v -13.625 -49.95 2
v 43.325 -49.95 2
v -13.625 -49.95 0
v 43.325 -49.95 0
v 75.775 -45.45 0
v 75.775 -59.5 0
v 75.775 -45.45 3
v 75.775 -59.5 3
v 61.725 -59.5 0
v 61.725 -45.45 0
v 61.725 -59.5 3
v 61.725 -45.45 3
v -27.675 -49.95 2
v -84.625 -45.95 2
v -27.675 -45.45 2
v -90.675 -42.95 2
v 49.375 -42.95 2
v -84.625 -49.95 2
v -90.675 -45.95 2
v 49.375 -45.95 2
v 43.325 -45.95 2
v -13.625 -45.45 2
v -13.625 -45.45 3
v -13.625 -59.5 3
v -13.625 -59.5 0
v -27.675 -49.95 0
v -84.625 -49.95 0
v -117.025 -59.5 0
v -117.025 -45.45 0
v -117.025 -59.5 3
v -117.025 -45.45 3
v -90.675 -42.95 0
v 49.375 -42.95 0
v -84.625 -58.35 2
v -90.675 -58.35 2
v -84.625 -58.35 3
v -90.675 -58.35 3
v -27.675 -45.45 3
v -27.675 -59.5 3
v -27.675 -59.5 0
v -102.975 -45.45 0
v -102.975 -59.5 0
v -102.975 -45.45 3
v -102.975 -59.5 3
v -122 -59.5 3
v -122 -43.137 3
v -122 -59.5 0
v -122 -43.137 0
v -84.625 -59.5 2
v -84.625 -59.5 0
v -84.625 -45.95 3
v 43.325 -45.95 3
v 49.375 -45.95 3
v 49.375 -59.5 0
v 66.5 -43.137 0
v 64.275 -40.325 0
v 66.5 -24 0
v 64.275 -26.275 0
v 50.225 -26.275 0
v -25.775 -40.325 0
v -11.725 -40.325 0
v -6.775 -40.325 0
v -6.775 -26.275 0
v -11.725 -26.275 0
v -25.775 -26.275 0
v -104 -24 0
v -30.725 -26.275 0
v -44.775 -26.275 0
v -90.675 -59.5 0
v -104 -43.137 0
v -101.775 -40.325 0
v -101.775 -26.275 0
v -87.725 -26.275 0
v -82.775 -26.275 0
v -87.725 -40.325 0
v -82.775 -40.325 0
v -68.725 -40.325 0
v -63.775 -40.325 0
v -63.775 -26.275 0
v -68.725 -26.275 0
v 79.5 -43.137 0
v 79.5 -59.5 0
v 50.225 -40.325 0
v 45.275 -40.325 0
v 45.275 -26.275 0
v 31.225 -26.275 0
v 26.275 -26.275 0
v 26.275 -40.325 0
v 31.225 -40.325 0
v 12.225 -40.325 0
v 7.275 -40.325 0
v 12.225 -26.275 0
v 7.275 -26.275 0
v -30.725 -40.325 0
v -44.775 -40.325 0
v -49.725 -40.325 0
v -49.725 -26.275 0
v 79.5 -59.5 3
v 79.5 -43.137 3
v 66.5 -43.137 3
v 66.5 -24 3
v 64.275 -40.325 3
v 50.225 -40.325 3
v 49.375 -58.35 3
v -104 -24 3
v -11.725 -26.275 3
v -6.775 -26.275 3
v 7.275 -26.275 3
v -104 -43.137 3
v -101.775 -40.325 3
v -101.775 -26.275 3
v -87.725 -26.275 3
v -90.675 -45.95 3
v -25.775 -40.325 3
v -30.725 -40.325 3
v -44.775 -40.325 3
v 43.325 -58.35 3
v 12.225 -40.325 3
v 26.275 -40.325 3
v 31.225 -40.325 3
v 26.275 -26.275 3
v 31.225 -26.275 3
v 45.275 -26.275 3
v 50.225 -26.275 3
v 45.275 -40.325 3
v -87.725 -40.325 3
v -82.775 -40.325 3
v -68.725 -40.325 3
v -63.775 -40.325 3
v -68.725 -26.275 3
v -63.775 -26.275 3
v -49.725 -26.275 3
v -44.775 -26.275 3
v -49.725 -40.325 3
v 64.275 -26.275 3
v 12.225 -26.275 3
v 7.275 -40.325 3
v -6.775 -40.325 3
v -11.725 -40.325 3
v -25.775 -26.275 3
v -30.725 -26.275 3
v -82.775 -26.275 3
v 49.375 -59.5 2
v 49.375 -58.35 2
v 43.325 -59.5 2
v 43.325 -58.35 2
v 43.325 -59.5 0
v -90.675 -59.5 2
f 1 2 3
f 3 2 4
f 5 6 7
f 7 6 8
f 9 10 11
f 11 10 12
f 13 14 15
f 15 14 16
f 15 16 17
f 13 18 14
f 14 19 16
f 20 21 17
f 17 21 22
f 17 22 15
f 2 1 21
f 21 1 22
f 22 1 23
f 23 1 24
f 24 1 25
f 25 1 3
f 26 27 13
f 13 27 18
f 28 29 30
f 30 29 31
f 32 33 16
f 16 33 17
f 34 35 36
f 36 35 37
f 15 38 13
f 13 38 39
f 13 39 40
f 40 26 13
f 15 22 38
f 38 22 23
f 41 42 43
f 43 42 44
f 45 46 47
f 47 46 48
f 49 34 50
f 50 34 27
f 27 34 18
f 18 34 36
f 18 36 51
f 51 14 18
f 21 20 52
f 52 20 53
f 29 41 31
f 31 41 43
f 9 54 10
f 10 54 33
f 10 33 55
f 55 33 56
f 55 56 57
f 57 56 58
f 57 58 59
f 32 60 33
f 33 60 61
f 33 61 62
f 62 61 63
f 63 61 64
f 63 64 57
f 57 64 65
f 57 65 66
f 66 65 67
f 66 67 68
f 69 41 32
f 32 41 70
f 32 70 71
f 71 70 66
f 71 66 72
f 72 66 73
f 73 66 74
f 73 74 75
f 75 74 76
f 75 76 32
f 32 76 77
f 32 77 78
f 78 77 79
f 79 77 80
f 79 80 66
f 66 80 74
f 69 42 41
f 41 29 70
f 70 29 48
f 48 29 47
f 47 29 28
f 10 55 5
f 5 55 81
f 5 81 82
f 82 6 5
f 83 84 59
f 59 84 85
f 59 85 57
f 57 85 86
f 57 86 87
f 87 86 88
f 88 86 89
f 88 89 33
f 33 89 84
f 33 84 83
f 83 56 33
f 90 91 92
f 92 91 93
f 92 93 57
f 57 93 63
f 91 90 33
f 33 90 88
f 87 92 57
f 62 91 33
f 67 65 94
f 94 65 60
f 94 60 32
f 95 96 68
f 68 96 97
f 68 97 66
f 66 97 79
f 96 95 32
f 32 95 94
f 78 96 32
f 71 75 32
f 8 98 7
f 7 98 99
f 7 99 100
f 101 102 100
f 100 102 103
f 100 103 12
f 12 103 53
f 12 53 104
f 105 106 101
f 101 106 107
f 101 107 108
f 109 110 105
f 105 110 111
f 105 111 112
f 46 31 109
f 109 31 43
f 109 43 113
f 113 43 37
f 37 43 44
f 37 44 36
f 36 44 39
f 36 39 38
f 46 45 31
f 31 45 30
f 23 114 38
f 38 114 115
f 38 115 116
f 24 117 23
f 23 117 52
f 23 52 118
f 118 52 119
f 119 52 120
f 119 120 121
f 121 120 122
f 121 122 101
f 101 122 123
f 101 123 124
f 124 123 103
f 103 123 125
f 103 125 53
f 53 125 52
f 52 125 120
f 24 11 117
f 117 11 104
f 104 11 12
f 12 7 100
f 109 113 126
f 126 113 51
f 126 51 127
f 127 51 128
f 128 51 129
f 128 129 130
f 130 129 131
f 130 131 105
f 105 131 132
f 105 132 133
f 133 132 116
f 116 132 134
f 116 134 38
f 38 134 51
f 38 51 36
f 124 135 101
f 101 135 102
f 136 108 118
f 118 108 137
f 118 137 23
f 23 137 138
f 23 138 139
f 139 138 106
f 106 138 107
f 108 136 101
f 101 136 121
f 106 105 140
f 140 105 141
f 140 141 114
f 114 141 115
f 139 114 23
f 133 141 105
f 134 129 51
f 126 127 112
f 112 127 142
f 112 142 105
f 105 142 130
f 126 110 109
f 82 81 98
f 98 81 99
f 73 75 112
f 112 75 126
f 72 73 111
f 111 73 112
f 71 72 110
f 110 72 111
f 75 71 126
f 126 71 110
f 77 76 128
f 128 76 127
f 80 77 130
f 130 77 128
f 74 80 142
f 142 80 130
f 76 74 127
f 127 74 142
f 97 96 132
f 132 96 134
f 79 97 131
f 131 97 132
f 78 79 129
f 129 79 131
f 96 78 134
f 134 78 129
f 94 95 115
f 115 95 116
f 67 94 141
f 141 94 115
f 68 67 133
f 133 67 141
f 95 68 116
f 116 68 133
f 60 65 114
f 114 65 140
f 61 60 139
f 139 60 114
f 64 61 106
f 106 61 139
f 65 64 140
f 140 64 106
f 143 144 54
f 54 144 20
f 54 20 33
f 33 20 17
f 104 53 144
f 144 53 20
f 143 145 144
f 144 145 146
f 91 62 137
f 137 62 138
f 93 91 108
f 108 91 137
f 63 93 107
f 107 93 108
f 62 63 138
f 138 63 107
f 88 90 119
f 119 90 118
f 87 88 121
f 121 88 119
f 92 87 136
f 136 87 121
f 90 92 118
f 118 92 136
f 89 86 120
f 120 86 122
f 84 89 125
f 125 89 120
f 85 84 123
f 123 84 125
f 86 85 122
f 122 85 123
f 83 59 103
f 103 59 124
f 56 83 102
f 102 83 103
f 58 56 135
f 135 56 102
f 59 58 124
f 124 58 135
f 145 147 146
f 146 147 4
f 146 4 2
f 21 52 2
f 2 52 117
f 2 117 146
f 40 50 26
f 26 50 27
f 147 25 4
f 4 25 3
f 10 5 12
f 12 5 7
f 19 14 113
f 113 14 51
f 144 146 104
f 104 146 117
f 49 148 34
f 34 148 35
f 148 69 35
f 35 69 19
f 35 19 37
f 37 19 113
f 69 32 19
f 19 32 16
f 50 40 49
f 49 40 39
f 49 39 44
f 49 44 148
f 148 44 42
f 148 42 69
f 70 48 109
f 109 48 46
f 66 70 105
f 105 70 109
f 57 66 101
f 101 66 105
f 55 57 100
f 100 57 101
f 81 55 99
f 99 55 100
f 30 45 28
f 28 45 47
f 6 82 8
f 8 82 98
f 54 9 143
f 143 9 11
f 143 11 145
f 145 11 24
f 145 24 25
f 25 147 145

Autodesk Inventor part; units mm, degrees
ref_plane "YZ Plane" through (0, 0, 0) normal (1, 0, 0) x (0, 1, 0)
ref_plane "XZ Plane" through (0, 0, 0) normal (0, 1, 0) x (-1, 0, 0)
ref_plane "XY Plane" through (0, 0, 0) normal (0, 0, 1) x (1, 0, 0)
sketch "Sketch1" plane through (0, 0, 0) normal (0, 0, 1) x (1, 0, 0)
  line L0 (31.275, 11.925) -> (31.275, -2.125) construction
  line L1 (31.275, -2.125) -> (17.225, -2.125) construction
  line L2 (17.225, -2.125) -> (17.225, 11.925) construction
  line L3 (17.225, 11.925) -> (31.275, 11.925) construction
  line L4 (-101.725, 11.925) -> (-101.725, -2.125) construction
  line L5 (-101.725, -2.125) -> (-115.775, -2.125) construction
  line L6 (-115.775, -2.125) -> (-115.775, 11.925) construction
  line L7 (-115.775, 11.925) -> (-101.725, 11.925) construction
  line L8 (43.325, -43.95) -> (49.375, -43.95) construction
  line L9 (49.375, -43.95) -> (49.375, -61) construction
  line L10 (49.375, -61) -> (43.325, -61) construction
  line L11 (43.325, -61) -> (43.325, -43.95) construction
  line L12 (117.95, -19.8) -> (117.95, -13.75) construction
  line L13 (117.95, -13.75) -> (135, -13.75) construction
  line L14 (135, -13.75) -> (135, -19.8) construction
  line L15 (135, -19.8) -> (117.95, -19.8) construction
  line L16 (26.325, -43.95) -> (32.375, -43.95) construction
  line L17 (32.375, -43.95) -> (32.375, -61) construction
  line L18 (32.375, -61) -> (26.325, -61) construction
  line L19 (26.325, -61) -> (26.325, -43.95) construction
  line L20 (-152.525, 13.425) -> (-146.475, 13.425) construction
  line L21 (-146.475, 13.425) -> (-146.475, -3.625) construction
  line L22 (-146.475, -3.625) -> (-152.525, -3.625) construction
  line L23 (-152.525, -3.625) -> (-152.525, 13.425) construction
  line L24 (-90.675, -43.95) -> (-84.625, -43.95) construction
  line L25 (-84.625, -43.95) -> (-84.625, -61) construction
  line L26 (-84.625, -61) -> (-90.675, -61) construction
  line L27 (-90.675, -61) -> (-90.675, -43.95) construction
  line L28 (39.375, -43.95) -> (39.375, -61) construction
  line L29 (39.375, -61) -> (33.325, -61) construction
  line L30 (33.325, -61) -> (33.325, -43.95) construction
  line L31 (33.325, -43.95) -> (39.375, -43.95) construction
  line L32 (117.95, 4.2) -> (117.95, 10.25) construction
  line L33 (117.95, 10.25) -> (135, 10.25) construction
  line L34 (135, 10.25) -> (135, 4.2) construction
  line L35 (135, 4.2) -> (117.95, 4.2) construction
  line L36 (-67.625, -43.95) -> (-67.625, -61) construction
  line L37 (-67.625, -61) -> (-73.675, -61) construction
  line L38 (-73.675, -61) -> (-73.675, -43.95) construction
  line L39 (-73.675, -43.95) -> (-67.625, -43.95) construction
  line L40 (-128.525, 13.425) -> (-122.475, 13.425) construction
  line L41 (-122.475, 13.425) -> (-122.475, -3.625) construction
  line L42 (-122.475, -3.625) -> (-128.525, -3.625) construction
  line L43 (-128.525, -3.625) -> (-128.525, 13.425) construction
  line L44 (-74.625, -43.95) -> (-74.625, -61) construction
  line L45 (-74.625, -61) -> (-80.675, -61) construction
  line L46 (-80.675, -61) -> (-80.675, -43.95) construction
  line L47 (-80.675, -43.95) -> (-74.625, -43.95) construction
  line L48 (-157.5, -62.5) -> (157.5, -62.5) construction
  line L49 (157.5, -62.5) -> (157.5, -41.5) construction
  line L50 (157.5, -41.5) -> (139.5, -41.5) construction
  line L51 (139.5, -41.5) -> (139.5, 12.5) construction
  line L52 (139.5, 12.5) -> (157.5, 12.5) construction
  line L53 (157.5, 12.5) -> (157.5, 62.5) construction
  line L54 (157.5, 62.5) -> (-157.5, 62.5) construction
  line L55 (-157.5, 62.5) -> (-157.5, -62.5) construction
  line L56 (-38.5, 42.5) -> (6.5, 42.5) construction
  line L57 (6.5, 42.5) -> (6.5, 33.5) construction
  line L58 (6.5, 33.5) -> (-38.5, 33.5) construction
  line L59 (-38.5, 33.5) -> (-38.5, 42.5) construction
  line L60 (154.775, -45.45) -> (154.775, -59.5) construction
  line L61 (154.775, -59.5) -> (140.725, -59.5) construction
  line L62 (140.725, -59.5) -> (140.725, -45.45) construction
  line L63 (140.725, -45.45) -> (154.775, -45.45) construction
  line L64 (135.775, -45.45) -> (135.775, -59.5) construction
  line L65 (135.775, -59.5) -> (121.725, -59.5) construction
  line L66 (121.725, -59.5) -> (121.725, -45.45) construction
  line L67 (121.725, -45.45) -> (135.775, -45.45) construction
  line L68 (116.775, -45.45) -> (116.775, -59.5) construction
  line L69 (116.775, -59.5) -> (102.725, -59.5) construction
  line L70 (102.725, -59.5) -> (102.725, -45.45) construction
  line L71 (102.725, -45.45) -> (116.775, -45.45) construction
  line L72 (97.775, -45.45) -> (97.775, -59.5) construction
  line L73 (97.775, -59.5) -> (83.725, -59.5) construction
  line L74 (83.725, -59.5) -> (83.725, -45.45) construction
  line L75 (83.725, -45.45) -> (97.775, -45.45) construction
  line L76 (75.775, -45.45) -> (75.775, -59.5) construction
  line L77 (75.775, -59.5) -> (61.725, -59.5) construction
  line L78 (61.725, -59.5) -> (61.725, -45.45) construction
  line L79 (61.725, -45.45) -> (75.775, -45.45) construction
  line L80 (-13.625, -45.45) -> (-13.625, -59.5) construction
  line L81 (-13.625, -59.5) -> (-27.675, -59.5) construction
  line L82 (-27.675, -59.5) -> (-27.675, -45.45) construction
  line L83 (-27.675, -45.45) -> (-13.625, -45.45) construction
  line L84 (-102.975, -45.45) -> (-102.975, -59.5) construction
  line L85 (-102.975, -59.5) -> (-117.025, -59.5) construction
  line L86 (-117.025, -59.5) -> (-117.025, -45.45) construction
  line L87 (-117.025, -45.45) -> (-102.975, -45.45) construction
  line L88 (-141.525, -45.45) -> (-127.475, -45.45) construction
  line L89 (-127.475, -45.45) -> (-127.475, -59.5) construction
  line L90 (-127.475, -59.5) -> (-141.525, -59.5) construction
  line L91 (-141.525, -59.5) -> (-141.525, -45.45) construction
  line L92 (121.725, -26.275) -> (135.775, -26.275) construction
  line L93 (135.775, -26.275) -> (135.775, -40.325) construction
  line L94 (135.775, -40.325) -> (121.725, -40.325) construction
  line L95 (121.725, -40.325) -> (121.725, -26.275) construction
  line L96 (95.475, -26.275) -> (109.525, -26.275) construction
  line L97 (109.525, -26.275) -> (109.525, -40.325) construction
  line L98 (109.525, -40.325) -> (95.475, -40.325) construction
  line L99 (95.475, -40.325) -> (95.475, -26.275) construction
  line L100 (69.225, -26.275) -> (83.275, -26.275) construction
  line L101 (83.275, -26.275) -> (83.275, -40.325) construction
  line L102 (83.275, -40.325) -> (69.225, -40.325) construction
  line L103 (69.225, -40.325) -> (69.225, -26.275) construction
  line L104 (50.225, -26.275) -> (64.275, -26.275) construction
  line L105 (64.275, -26.275) -> (64.275, -40.325) construction
  line L106 (64.275, -40.325) -> (50.225, -40.325) construction
  line L107 (50.225, -40.325) -> (50.225, -26.275) construction
  line L108 (31.225, -26.275) -> (45.275, -26.275) construction
  line L109 (45.275, -26.275) -> (45.275, -40.325) construction
  line L110 (45.275, -40.325) -> (31.225, -40.325) construction
  line L111 (31.225, -40.325) -> (31.225, -26.275) construction
  line L112 (12.225, -26.275) -> (26.275, -26.275) construction
  line L113 (26.275, -26.275) -> (26.275, -40.325) construction
  line L114 (26.275, -40.325) -> (12.225, -40.325) construction
  line L115 (12.225, -40.325) -> (12.225, -26.275) construction
  line L116 (-6.775, -26.275) -> (7.275, -26.275) construction
  line L117 (7.275, -26.275) -> (7.275, -40.325) construction
  line L118 (7.275, -40.325) -> (-6.775, -40.325) construction
  line L119 (-6.775, -40.325) -> (-6.775, -26.275) construction
  line L120 (-25.775, -26.275) -> (-11.725, -26.275) construction
  line L121 (-11.725, -26.275) -> (-11.725, -40.325) construction
  line L122 (-11.725, -40.325) -> (-25.775, -40.325) construction
  line L123 (-25.775, -40.325) -> (-25.775, -26.275) construction
  line L124 (-44.775, -26.275) -> (-30.725, -26.275) construction
  line L125 (-30.725, -26.275) -> (-30.725, -40.325) construction
  line L126 (-30.725, -40.325) -> (-44.775, -40.325) construction
  line L127 (-44.775, -40.325) -> (-44.775, -26.275) construction
  line L128 (-63.775, -26.275) -> (-49.725, -26.275) construction
  line L129 (-49.725, -26.275) -> (-49.725, -40.325) construction
  line L130 (-49.725, -40.325) -> (-63.775, -40.325) construction
  line L131 (-63.775, -40.325) -> (-63.775, -26.275) construction
  line L132 (-82.775, -26.275) -> (-68.725, -26.275) construction
  line L133 (-68.725, -26.275) -> (-68.725, -40.325) construction
  line L134 (-68.725, -40.325) -> (-82.775, -40.325) construction
  line L135 (-82.775, -40.325) -> (-82.775, -26.275) construction
  line L136 (-101.775, -26.275) -> (-87.725, -26.275) construction
  line L137 (-87.725, -26.275) -> (-87.725, -40.325) construction
  line L138 (-87.725, -40.325) -> (-101.775, -40.325) construction
  line L139 (-101.775, -40.325) -> (-101.775, -26.275) construction
  line L140 (-120.775, -26.275) -> (-106.725, -26.275) construction
  line L141 (-106.725, -26.275) -> (-106.725, -40.325) construction
  line L142 (-106.725, -40.325) -> (-120.775, -40.325) construction
  line L143 (-120.775, -40.325) -> (-120.775, -26.275) construction
  line L144 (-146.775, -26.275) -> (-132.725, -26.275) construction
  line L145 (-132.725, -26.275) -> (-132.725, -40.325) construction
  line L146 (-132.725, -40.325) -> (-146.775, -40.325) construction
  line L147 (-146.775, -40.325) -> (-146.775, -26.275) construction
  line L148 (97.975, -7.175) -> (112.025, -7.175) construction
  line L149 (112.025, -7.175) -> (112.025, -21.225) construction
  line L150 (112.025, -21.225) -> (97.975, -21.225) construction
  line L151 (97.975, -21.225) -> (97.975, -7.175) construction
  line L152 (78.975, -7.175) -> (93.025, -7.175) construction
  line L153 (93.025, -7.175) -> (93.025, -21.225) construction
  line L154 (93.025, -21.225) -> (78.975, -21.225) construction
  line L155 (78.975, -21.225) -> (78.975, -7.175) construction
  line L156 (59.975, -7.175) -> (74.025, -7.175) construction
  line L157 (74.025, -7.175) -> (74.025, -21.225) construction
  line L158 (74.025, -21.225) -> (59.975, -21.225) construction
  line L159 (59.975, -21.225) -> (59.975, -7.175) construction
  line L160 (40.975, -7.175) -> (55.025, -7.175) construction
  line L161 (55.025, -7.175) -> (55.025, -21.225) construction
  line L162 (55.025, -21.225) -> (40.975, -21.225) construction
  line L163 (40.975, -21.225) -> (40.975, -7.175) construction
  line L164 (21.975, -7.175) -> (36.025, -7.175) construction
  line L165 (36.025, -7.175) -> (36.025, -21.225) construction
  line L166 (36.025, -21.225) -> (21.975, -21.225) construction
  line L167 (21.975, -21.225) -> (21.975, -7.175) construction
  line L168 (2.975, -7.175) -> (17.025, -7.175) construction
  line L169 (17.025, -7.175) -> (17.025, -21.225) construction
  line L170 (17.025, -21.225) -> (2.975, -21.225) construction
  line L171 (2.975, -21.225) -> (2.975, -7.175) construction
  line L172 (-16.025, -7.175) -> (-1.975, -7.175) construction
  line L173 (-1.975, -7.175) -> (-1.975, -21.225) construction
  line L174 (-1.975, -21.225) -> (-16.025, -21.225) construction
  line L175 (-16.025, -21.225) -> (-16.025, -7.175) construction
  line L176 (-35.025, -7.175) -> (-20.975, -7.175) construction
  line L177 (-20.975, -7.175) -> (-20.975, -21.225) construction
  line L178 (-20.975, -21.225) -> (-35.025, -21.225) construction
  line L179 (-35.025, -21.225) -> (-35.025, -7.175) construction
  line L180 (-54.025, -7.175) -> (-39.975, -7.175) construction
  line L181 (-39.975, -7.175) -> (-39.975, -21.225) construction
  line L182 (-39.975, -21.225) -> (-54.025, -21.225) construction
  line L183 (-54.025, -21.225) -> (-54.025, -7.175) construction
  line L184 (-73.025, -7.175) -> (-58.975, -7.175) construction
  line L185 (-58.975, -7.175) -> (-58.975, -21.225) construction
  line L186 (-58.975, -21.225) -> (-73.025, -21.225) construction
  line L187 (-73.025, -21.225) -> (-73.025, -7.175) construction
  line L188 (-92.025, -7.175) -> (-77.975, -7.175) construction
  line L189 (-77.975, -7.175) -> (-77.975, -21.225) construction
  line L190 (-77.975, -21.225) -> (-92.025, -21.225) construction
  line L191 (-92.025, -21.225) -> (-92.025, -7.175) construction
  line L192 (-111.025, -7.175) -> (-96.975, -7.175) construction
  line L193 (-96.975, -7.175) -> (-96.975, -21.225) construction
  line L194 (-96.975, -21.225) -> (-111.025, -21.225) construction
  line L195 (-111.025, -21.225) -> (-111.025, -7.175) construction
  line L196 (-130.025, -7.175) -> (-115.975, -7.175) construction
  line L197 (-115.975, -7.175) -> (-115.975, -21.225) construction
  line L198 (-115.975, -21.225) -> (-130.025, -21.225) construction
  line L199 (-130.025, -21.225) -> (-130.025, -7.175) construction
  line L200 (-151.525, -7.175) -> (-137.475, -7.175) construction
  line L201 (-137.475, -7.175) -> (-137.475, -21.225) construction
  line L202 (-137.475, -21.225) -> (-151.525, -21.225) construction
  line L203 (-151.525, -21.225) -> (-151.525, -7.175) construction
  line L204 (119.45, 2.25) -> (133.5, 2.25) construction
  line L205 (133.5, 2.25) -> (133.5, -11.8) construction
  line L206 (133.5, -11.8) -> (119.45, -11.8) construction
  line L207 (119.45, -11.8) -> (119.45, 2.25) construction
  line L208 (107.275, 11.925) -> (107.275, -2.125) construction
  line L209 (107.275, -2.125) -> (93.225, -2.125) construction
  line L210 (93.225, -2.125) -> (93.225, 11.925) construction
  line L211 (93.225, 11.925) -> (107.275, 11.925) construction
  line L212 (88.275, 11.925) -> (88.275, -2.125) construction
  line L213 (88.275, -2.125) -> (74.225, -2.125) construction
  line L214 (74.225, -2.125) -> (74.225, 11.925) construction
  line L215 (74.225, 11.925) -> (88.275, 11.925) construction
  line L216 (69.275, 11.925) -> (69.275, -2.125) construction
  line L217 (69.275, -2.125) -> (55.225, -2.125) construction
  line L218 (55.225, -2.125) -> (55.225, 11.925) construction
  line L219 (55.225, 11.925) -> (69.275, 11.925) construction
  line L220 (50.275, 11.925) -> (50.275, -2.125) construction
  line L221 (50.275, -2.125) -> (36.225, -2.125) construction
  line L222 (36.225, -2.125) -> (36.225, 11.925) construction
  line L223 (36.225, 11.925) -> (50.275, 11.925) construction
  line L224 (12.275, 11.925) -> (12.275, -2.125) construction
  line L225 (12.275, -2.125) -> (-1.775, -2.125) construction
  line L226 (-1.775, -2.125) -> (-1.775, 11.925) construction
  line L227 (-1.775, 11.925) -> (12.275, 11.925) construction
  line L228 (-6.725, 11.925) -> (-6.725, -2.125) construction
  line L229 (-6.725, -2.125) -> (-20.775, -2.125) construction
  line L230 (-20.775, -2.125) -> (-20.775, 11.925) construction
  line L231 (-20.775, 11.925) -> (-6.725, 11.925) construction
  line L232 (-25.725, 11.925) -> (-25.725, -2.125) construction
  line L233 (-25.725, -2.125) -> (-39.775, -2.125) construction
  line L234 (-39.775, -2.125) -> (-39.775, 11.925) construction
  line L235 (-39.775, 11.925) -> (-25.725, 11.925) construction
  line L236 (-44.725, 11.925) -> (-44.725, -2.125) construction
  line L237 (-44.725, -2.125) -> (-58.775, -2.125) construction
  line L238 (-58.775, -2.125) -> (-58.775, 11.925) construction
  line L239 (-58.775, 11.925) -> (-44.725, 11.925) construction
  line L240 (-63.725, 11.925) -> (-63.725, -2.125) construction
  line L241 (-63.725, -2.125) -> (-77.775, -2.125) construction
  line L242 (-77.775, -2.125) -> (-77.775, 11.925) construction
  line L243 (-77.775, 11.925) -> (-63.725, 11.925) construction
  line L244 (-82.725, 11.925) -> (-82.725, -2.125) construction
  line L245 (-82.725, -2.125) -> (-96.775, -2.125) construction
  line L246 (-96.775, -2.125) -> (-96.775, 11.925) construction
  line L247 (-96.775, 11.925) -> (-82.725, 11.925) construction
  line L248 (-144.525, 11.925) -> (-130.475, 11.925) construction
  line L249 (-130.475, 11.925) -> (-130.475, -2.125) construction
  line L250 (-130.475, -2.125) -> (-144.525, -2.125) construction
  line L251 (-144.525, -2.125) -> (-144.525, 11.925) construction
  line L252 (154.525, 16.975) -> (140.475, 16.975) construction
  line L253 (140.475, 16.975) -> (140.475, 31.025) construction
  line L254 (140.475, 31.025) -> (154.525, 31.025) construction
  line L255 (154.525, 31.025) -> (154.525, 16.975) construction
  line L256 (135.525, 16.975) -> (121.475, 16.975) construction
  line L257 (121.475, 16.975) -> (121.475, 31.025) construction
  line L258 (121.475, 31.025) -> (135.525, 31.025) construction
  line L259 (135.525, 31.025) -> (135.525, 16.975) construction
  line L260 (116.525, 16.975) -> (102.475, 16.975) construction
  line L261 (102.475, 16.975) -> (102.475, 31.025) construction
  line L262 (102.475, 31.025) -> (116.525, 31.025) construction
  line L263 (116.525, 31.025) -> (116.525, 16.975) construction
  line L264 (97.525, 16.975) -> (83.475, 16.975) construction
  line L265 (83.475, 16.975) -> (83.475, 31.025) construction
  line L266 (83.475, 31.025) -> (97.525, 31.025) construction
  line L267 (97.525, 31.025) -> (97.525, 16.975) construction
  line L268 (78.525, 16.975) -> (64.475, 16.975) construction
  line L269 (64.475, 16.975) -> (64.475, 31.025) construction
  line L270 (64.475, 31.025) -> (78.525, 31.025) construction
  line L271 (78.525, 31.025) -> (78.525, 16.975) construction
  line L272 (59.525, 16.975) -> (45.475, 16.975) construction
  line L273 (45.475, 16.975) -> (45.475, 31.025) construction
  line L274 (45.475, 31.025) -> (59.525, 31.025) construction
  line L275 (59.525, 31.025) -> (59.525, 16.975) construction
  line L276 (40.525, 16.975) -> (26.475, 16.975) construction
  line L277 (26.475, 16.975) -> (26.475, 31.025) construction
  line L278 (26.475, 31.025) -> (40.525, 31.025) construction
  line L279 (40.525, 31.025) -> (40.525, 16.975) construction
  line L280 (21.525, 16.975) -> (7.475, 16.975) construction
  line L281 (7.475, 16.975) -> (7.475, 31.025) construction
  line L282 (7.475, 31.025) -> (21.525, 31.025) construction
  line L283 (21.525, 31.025) -> (21.525, 16.975) construction
  line L284 (2.525, 16.975) -> (-11.525, 16.975) construction
  line L285 (-11.525, 16.975) -> (-11.525, 31.025) construction
  line L286 (-11.525, 31.025) -> (2.525, 31.025) construction
  line L287 (2.525, 31.025) -> (2.525, 16.975) construction
  line L288 (-16.475, 16.975) -> (-30.525, 16.975) construction
  line L289 (-30.525, 16.975) -> (-30.525, 31.025) construction
  line L290 (-30.525, 31.025) -> (-16.475, 31.025) construction
  line L291 (-16.475, 31.025) -> (-16.475, 16.975) construction
  line L292 (-35.475, 16.975) -> (-49.525, 16.975) construction
  line L293 (-49.525, 16.975) -> (-49.525, 31.025) construction
  line L294 (-49.525, 31.025) -> (-35.475, 31.025) construction
  line L295 (-35.475, 31.025) -> (-35.475, 16.975) construction
  line L296 (-54.475, 16.975) -> (-68.525, 16.975) construction
  line L297 (-68.525, 16.975) -> (-68.525, 31.025) construction
  line L298 (-68.525, 31.025) -> (-54.475, 31.025) construction
  line L299 (-54.475, 31.025) -> (-54.475, 16.975) construction
  line L300 (-73.475, 16.975) -> (-87.525, 16.975) construction
  line L301 (-87.525, 16.975) -> (-87.525, 31.025) construction
  line L302 (-87.525, 31.025) -> (-73.475, 31.025) construction
  line L303 (-73.475, 31.025) -> (-73.475, 16.975) construction
  line L304 (-92.475, 16.975) -> (-106.525, 16.975) construction
  line L305 (-106.525, 16.975) -> (-106.525, 31.025) construction
  line L306 (-106.525, 31.025) -> (-92.475, 31.025) construction
  line L307 (-92.475, 31.025) -> (-92.475, 16.975) construction
  line L308 (-111.475, 16.975) -> (-125.525, 16.975) construction
  line L309 (-125.525, 16.975) -> (-125.525, 31.025) construction
  line L310 (-125.525, 31.025) -> (-111.475, 31.025) construction
  line L311 (-111.475, 31.025) -> (-111.475, 16.975) construction
  line L312 (-149.525, 31.025) -> (-135.475, 31.025) construction
  line L313 (-135.475, 31.025) -> (-135.475, 16.975) construction
  line L314 (-135.475, 16.975) -> (-149.525, 16.975) construction
  line L315 (-149.525, 16.975) -> (-149.525, 31.025) construction
  line L316 (138.975, 59.525) -> (153.025, 59.525) construction
  line L317 (153.025, 59.525) -> (153.025, 45.475) construction
  line L318 (153.025, 45.475) -> (138.975, 45.475) construction
  line L319 (138.975, 45.475) -> (138.975, 59.525) construction
  line L320 (105.475, 59.525) -> (119.525, 59.525) construction
  line L321 (119.525, 59.525) -> (119.525, 45.475) construction
  line L322 (119.525, 45.475) -> (105.475, 45.475) construction
  line L323 (105.475, 45.475) -> (105.475, 59.525) construction
  line L324 (81.475, 59.525) -> (95.525, 59.525) construction
  line L325 (95.525, 59.525) -> (95.525, 45.475) construction
  line L326 (95.525, 45.475) -> (81.475, 45.475) construction
  line L327 (81.475, 45.475) -> (81.475, 59.525) construction
  line L328 (57.475, 59.525) -> (71.525, 59.525) construction
  line L329 (71.525, 59.525) -> (71.525, 45.475) construction
  line L330 (71.525, 45.475) -> (57.475, 45.475) construction
  line L331 (57.475, 45.475) -> (57.475, 59.525) construction
  line L332 (33.475, 59.525) -> (47.525, 59.525) construction
  line L333 (47.525, 59.525) -> (47.525, 45.475) construction
  line L334 (47.525, 45.475) -> (33.475, 45.475) construction
  line L335 (33.475, 45.475) -> (33.475, 59.525) construction
  line L336 (9.475, 59.525) -> (23.525, 59.525) construction
  line L337 (23.525, 59.525) -> (23.525, 45.475) construction
  line L338 (23.525, 45.475) -> (9.475, 45.475) construction
  line L339 (9.475, 45.475) -> (9.475, 59.525) construction
  line L340 (-23.025, 59.525) -> (-8.975, 59.525) construction
  line L341 (-8.975, 59.525) -> (-8.975, 45.475) construction
  line L342 (-8.975, 45.475) -> (-23.025, 45.475) construction
  line L343 (-23.025, 45.475) -> (-23.025, 59.525) construction
  line L344 (-47.025, 59.525) -> (-32.975, 59.525) construction
  line L345 (-32.975, 59.525) -> (-32.975, 45.475) construction
  line L346 (-32.975, 45.475) -> (-47.025, 45.475) construction
  line L347 (-47.025, 45.475) -> (-47.025, 59.525) construction
  line L348 (-71.025, 59.525) -> (-56.975, 59.525) construction
  line L349 (-56.975, 59.525) -> (-56.975, 45.475) construction
  line L350 (-56.975, 45.475) -> (-71.025, 45.475) construction
  line L351 (-71.025, 45.475) -> (-71.025, 59.525) construction
  line L352 (-95.025, 59.525) -> (-80.975, 59.525) construction
  line L353 (-80.975, 59.525) -> (-80.975, 45.475) construction
  line L354 (-80.975, 45.475) -> (-95.025, 45.475) construction
  line L355 (-95.025, 45.475) -> (-95.025, 59.525) construction
  line L356 (-119.025, 59.525) -> (-104.975, 59.525) construction
  line L357 (-104.975, 59.525) -> (-104.975, 45.475) construction
  line L358 (-104.975, 45.475) -> (-119.025, 45.475) construction
  line L359 (-119.025, 45.475) -> (-119.025, 59.525) construction
  line L360 (-152.025, 59.525) -> (-137.975, 59.525) construction
  line L361 (-137.975, 59.525) -> (-137.975, 45.475) construction
  line L362 (-137.975, 45.475) -> (-152.025, 45.475) construction
  line L363 (-152.025, 45.475) -> (-152.025, 59.525) construction
  line L364 (-122.25, -62.5) -> (-122.25, -42.8875) construction
  line L365 (-122.25, -42.8875) -> (-104.25, -42.8875) construction
  line L366 (-104.25, -42.8875) -> (-104.25, -23.75) construction
  line L367 (-104.25, -23.75) -> (66.75, -23.75) construction
  line L368 (66.75, -23.75) -> (66.75, -42.8875) construction
  line L369 (66.75, -42.8875) -> (79.75, -42.8875) construction
  line L370 (79.75, -42.8875) -> (79.75, -62.5) construction
  line L371 (75.775, -45.45) -> (79.75, -45.45) construction
  line L372 (79.75, -45.45) -> (83.725, -45.45) construction
  line L373 (75.775, -45.45) -> (75.775, -42.8875) construction
  line L374 (75.775, -42.8875) -> (75.775, -40.325) construction
  line L375 (69.225, -40.325) -> (66.75, -40.325) construction
  line L376 (66.75, -40.325) -> (64.275, -40.325) construction
  line L377 (64.275, -26.275) -> (64.275, -23.75) construction
  line L378 (64.275, -23.75) -> (64.275, -21.225) construction
  line L379 (-106.725, -26.275) -> (-104.25, -26.275) construction
  line L380 (-104.25, -26.275) -> (-101.775, -26.275) construction
  line L381 (-106.725, -40.325) -> (-106.725, -42.8875) construction
  line L382 (-106.725, -42.8875) -> (-106.725, -45.45) construction
  line L383 (-127.475, -45.45) -> (-122.25, -45.45) construction
  line L384 (-122.25, -45.45) -> (-117.025, -45.45) construction
  line L385 (-122, -62.5) -> (-122, -43.1375)
  line L386 (-122, -43.1375) -> (-104, -43.1375)
  line L387 (-104, -43.1375) -> (-104, -24)
  line L388 (-104, -24) -> (66.5, -24)
  line L389 (66.5, -24) -> (66.5, -43.1375)
  line L390 (66.5, -43.1375) -> (79.5, -43.1375)
  line L391 (79.5, -43.1375) -> (79.5, -62.5)
  line L392 (79.5, -62.5) -> (-122, -62.5)
  line L393 (-102.975, -45.45) -> (-102.975, -59.5) projected
  line L394 (-117.025, -45.45) -> (-102.975, -45.45) projected
  line L395 (-117.025, -59.5) -> (-117.025, -45.45) projected
  line L396 (-102.975, -59.5) -> (-117.025, -59.5) projected
  line L397 (-87.725, -40.325) -> (-101.775, -40.325) projected
  line L398 (-101.775, -40.325) -> (-101.775, -26.275) projected
  line L399 (-101.775, -26.275) -> (-87.725, -26.275) projected
  line L400 (-87.725, -26.275) -> (-87.725, -40.325) projected
  line L401 (-82.775, -40.325) -> (-82.775, -26.275) projected
  line L402 (-82.775, -26.275) -> (-68.725, -26.275) projected
  line L403 (-68.725, -26.275) -> (-68.725, -40.325) projected
  line L404 (-68.725, -40.325) -> (-82.775, -40.325) projected
  line L405 (-49.725, -40.325) -> (-63.775, -40.325) projected
  line L406 (-63.775, -40.325) -> (-63.775, -26.275) projected
  line L407 (-49.725, -26.275) -> (-49.725, -40.325) projected
  line L408 (-63.775, -26.275) -> (-49.725, -26.275) projected
  line L409 (-44.775, -40.325) -> (-44.775, -26.275) projected
  line L410 (-44.775, -26.275) -> (-30.725, -26.275) projected
  line L411 (-30.725, -40.325) -> (-44.775, -40.325) projected
  line L412 (-30.725, -26.275) -> (-30.725, -40.325) projected
  line L413 (-25.775, -26.275) -> (-11.725, -26.275) projected
  line L414 (-25.775, -40.325) -> (-25.775, -26.275) projected
  line L415 (-11.725, -26.275) -> (-11.725, -40.325) projected
  line L416 (-11.725, -40.325) -> (-25.775, -40.325) projected
  line L417 (-27.675, -45.45) -> (-13.625, -45.45) projected
  line L418 (-13.625, -45.45) -> (-13.625, -59.5) projected
  line L419 (-27.675, -59.5) -> (-27.675, -45.45) projected
  line L420 (-13.625, -59.5) -> (-27.675, -59.5) projected
  line L421 (-6.775, -40.325) -> (-6.775, -26.275) projected
  line L422 (7.275, -40.325) -> (-6.775, -40.325) projected
  line L423 (7.275, -26.275) -> (7.275, -40.325) projected
  line L424 (-6.775, -26.275) -> (7.275, -26.275) projected
  line L425 (12.225, -40.325) -> (12.225, -26.275) projected
  line L426 (12.225, -26.275) -> (26.275, -26.275) projected
  line L427 (26.275, -26.275) -> (26.275, -40.325) projected
  line L428 (26.275, -40.325) -> (12.225, -40.325) projected
  line L429 (31.225, -26.275) -> (45.275, -26.275) projected
  line L430 (45.275, -26.275) -> (45.275, -40.325) projected
  line L431 (31.225, -40.325) -> (31.225, -26.275) projected
  line L432 (45.275, -40.325) -> (31.225, -40.325) projected
  line L433 (50.225, -26.275) -> (64.275, -26.275) projected
  line L434 (50.225, -40.325) -> (50.225, -26.275) projected
  line L435 (64.275, -40.325) -> (50.225, -40.325) projected
  line L436 (64.275, -26.275) -> (64.275, -40.325) projected
  line L437 (61.725, -45.45) -> (75.775, -45.45) projected
  line L438 (75.775, -45.45) -> (75.775, -59.5) projected
  line L439 (61.725, -59.5) -> (61.725, -45.45) projected
  line L440 (75.775, -59.5) -> (61.725, -59.5) projected
  line L441 (-90.675, -45.95) -> (-84.625, -45.95)
  line L442 (-90.675, -58.35) -> (-84.625, -58.35)
  line L443 (-90.675, -45.95) -> (-90.675, -58.35)
  line L444 (-84.625, -45.95) -> (-84.625, -58.35)
  line L445 (43.325, -45.95) -> (49.375, -45.95)
  line L446 (43.325, -58.35) -> (49.375, -58.35)
  line L447 (43.325, -45.95) -> (43.325, -58.35)
  line L448 (49.375, -45.95) -> (49.375, -58.35)
  point P0 (0, 0)
  dimension "d0" = 0.25
  dimension "d1" = 0.25
  dimension "d2" = 0.25
  dimension "d3" = 0.25
  dimension "d4" = 0.25
  dimension "d5" = 0.25
  dimension "d6" = 0.25
  dimension "d7" = 2
  dimension "d8" = 12.4
extrude "Extrusion1" add sketch "Sketch1" along normal blind 3
sketch "Sketch2" plane through (0, 0, 0) normal (0, 0, -1) x (-1, 0, 0)
  line L0 (-49.375, -60.35) -> (-43.325, -60.35)
  line L1 (-43.325, -60.35) -> (-43.325, -49.95)
  line L2 (-43.325, -42.95) -> (-49.375, -42.95)
  line L3 (-49.375, -42.95) -> (-49.375, -60.35)
  line L4 (-43.325, -45.95) -> (-49.375, -45.95) projected
  line L5 (-49.375, -61) -> (-49.375, -43.95) construction
  line L6 (-43.325, -43.95) -> (-43.325, -61) construction
  line L7 (84.625, -61) -> (84.625, -43.95) construction
  line L8 (90.675, -43.95) -> (90.675, -61) construction
  line L9 (84.625, -42.95) -> (90.675, -42.95)
  line L10 (90.675, -42.95) -> (90.675, -60.35)
  line L11 (90.675, -60.35) -> (84.625, -60.35)
  line L12 (84.625, -60.35) -> (84.625, -49.95)
  line L13 (-43.325, -42.95) -> (84.625, -42.95)
  line L14 (-43.325, -49.95) -> (84.625, -49.95)
  line L15 (84.625, -45.95) -> (84.625, -58.35) projected
  point P0 (0, 0)
  point P1 (-49.375, -58.35)
  point P2 (-43.325, -58.35)
  dimension "d12" = 3
  dimension "d13" = 4
extrude "Extrusion2" cut sketch "Sketch2" against normal blind 2
sketch "Sketch3" plane through (0, 0, 3) normal (0, 0, 1) x (1, 0, 0)
  line L0 (-13.625, -59.5) -> (-27.675, -59.5) projected
  line L1 (79.5, -62.5) -> (79.5, -43.1375) projected
  line L2 (-122, -62.5) -> (79.5, -62.5)
  line L3 (79.5, -62.5) -> (79.5, -59.5)
  line L4 (79.5, -59.5) -> (-122, -59.5)
  line L5 (-122, -59.5) -> (-122, -62.5)
  point P0 (0, 0)
extrude "Extrusion3" cut sketch "Sketch3" against normal up to surface (3 mm away)
equation "\"d0\" = ipg"
equation "\"d1\" = ipg"
equation "\"d2\" = ipg"
equation "\"d3\" = ipg"
equation "\"d4\" = ipg"
equation "\"d5\" = ipg"
equation "\"d6\" = ipg"
equation "\"ipg\" = 0.25"
properties part number "Lower Middle Plate" material "PET Plastic"
